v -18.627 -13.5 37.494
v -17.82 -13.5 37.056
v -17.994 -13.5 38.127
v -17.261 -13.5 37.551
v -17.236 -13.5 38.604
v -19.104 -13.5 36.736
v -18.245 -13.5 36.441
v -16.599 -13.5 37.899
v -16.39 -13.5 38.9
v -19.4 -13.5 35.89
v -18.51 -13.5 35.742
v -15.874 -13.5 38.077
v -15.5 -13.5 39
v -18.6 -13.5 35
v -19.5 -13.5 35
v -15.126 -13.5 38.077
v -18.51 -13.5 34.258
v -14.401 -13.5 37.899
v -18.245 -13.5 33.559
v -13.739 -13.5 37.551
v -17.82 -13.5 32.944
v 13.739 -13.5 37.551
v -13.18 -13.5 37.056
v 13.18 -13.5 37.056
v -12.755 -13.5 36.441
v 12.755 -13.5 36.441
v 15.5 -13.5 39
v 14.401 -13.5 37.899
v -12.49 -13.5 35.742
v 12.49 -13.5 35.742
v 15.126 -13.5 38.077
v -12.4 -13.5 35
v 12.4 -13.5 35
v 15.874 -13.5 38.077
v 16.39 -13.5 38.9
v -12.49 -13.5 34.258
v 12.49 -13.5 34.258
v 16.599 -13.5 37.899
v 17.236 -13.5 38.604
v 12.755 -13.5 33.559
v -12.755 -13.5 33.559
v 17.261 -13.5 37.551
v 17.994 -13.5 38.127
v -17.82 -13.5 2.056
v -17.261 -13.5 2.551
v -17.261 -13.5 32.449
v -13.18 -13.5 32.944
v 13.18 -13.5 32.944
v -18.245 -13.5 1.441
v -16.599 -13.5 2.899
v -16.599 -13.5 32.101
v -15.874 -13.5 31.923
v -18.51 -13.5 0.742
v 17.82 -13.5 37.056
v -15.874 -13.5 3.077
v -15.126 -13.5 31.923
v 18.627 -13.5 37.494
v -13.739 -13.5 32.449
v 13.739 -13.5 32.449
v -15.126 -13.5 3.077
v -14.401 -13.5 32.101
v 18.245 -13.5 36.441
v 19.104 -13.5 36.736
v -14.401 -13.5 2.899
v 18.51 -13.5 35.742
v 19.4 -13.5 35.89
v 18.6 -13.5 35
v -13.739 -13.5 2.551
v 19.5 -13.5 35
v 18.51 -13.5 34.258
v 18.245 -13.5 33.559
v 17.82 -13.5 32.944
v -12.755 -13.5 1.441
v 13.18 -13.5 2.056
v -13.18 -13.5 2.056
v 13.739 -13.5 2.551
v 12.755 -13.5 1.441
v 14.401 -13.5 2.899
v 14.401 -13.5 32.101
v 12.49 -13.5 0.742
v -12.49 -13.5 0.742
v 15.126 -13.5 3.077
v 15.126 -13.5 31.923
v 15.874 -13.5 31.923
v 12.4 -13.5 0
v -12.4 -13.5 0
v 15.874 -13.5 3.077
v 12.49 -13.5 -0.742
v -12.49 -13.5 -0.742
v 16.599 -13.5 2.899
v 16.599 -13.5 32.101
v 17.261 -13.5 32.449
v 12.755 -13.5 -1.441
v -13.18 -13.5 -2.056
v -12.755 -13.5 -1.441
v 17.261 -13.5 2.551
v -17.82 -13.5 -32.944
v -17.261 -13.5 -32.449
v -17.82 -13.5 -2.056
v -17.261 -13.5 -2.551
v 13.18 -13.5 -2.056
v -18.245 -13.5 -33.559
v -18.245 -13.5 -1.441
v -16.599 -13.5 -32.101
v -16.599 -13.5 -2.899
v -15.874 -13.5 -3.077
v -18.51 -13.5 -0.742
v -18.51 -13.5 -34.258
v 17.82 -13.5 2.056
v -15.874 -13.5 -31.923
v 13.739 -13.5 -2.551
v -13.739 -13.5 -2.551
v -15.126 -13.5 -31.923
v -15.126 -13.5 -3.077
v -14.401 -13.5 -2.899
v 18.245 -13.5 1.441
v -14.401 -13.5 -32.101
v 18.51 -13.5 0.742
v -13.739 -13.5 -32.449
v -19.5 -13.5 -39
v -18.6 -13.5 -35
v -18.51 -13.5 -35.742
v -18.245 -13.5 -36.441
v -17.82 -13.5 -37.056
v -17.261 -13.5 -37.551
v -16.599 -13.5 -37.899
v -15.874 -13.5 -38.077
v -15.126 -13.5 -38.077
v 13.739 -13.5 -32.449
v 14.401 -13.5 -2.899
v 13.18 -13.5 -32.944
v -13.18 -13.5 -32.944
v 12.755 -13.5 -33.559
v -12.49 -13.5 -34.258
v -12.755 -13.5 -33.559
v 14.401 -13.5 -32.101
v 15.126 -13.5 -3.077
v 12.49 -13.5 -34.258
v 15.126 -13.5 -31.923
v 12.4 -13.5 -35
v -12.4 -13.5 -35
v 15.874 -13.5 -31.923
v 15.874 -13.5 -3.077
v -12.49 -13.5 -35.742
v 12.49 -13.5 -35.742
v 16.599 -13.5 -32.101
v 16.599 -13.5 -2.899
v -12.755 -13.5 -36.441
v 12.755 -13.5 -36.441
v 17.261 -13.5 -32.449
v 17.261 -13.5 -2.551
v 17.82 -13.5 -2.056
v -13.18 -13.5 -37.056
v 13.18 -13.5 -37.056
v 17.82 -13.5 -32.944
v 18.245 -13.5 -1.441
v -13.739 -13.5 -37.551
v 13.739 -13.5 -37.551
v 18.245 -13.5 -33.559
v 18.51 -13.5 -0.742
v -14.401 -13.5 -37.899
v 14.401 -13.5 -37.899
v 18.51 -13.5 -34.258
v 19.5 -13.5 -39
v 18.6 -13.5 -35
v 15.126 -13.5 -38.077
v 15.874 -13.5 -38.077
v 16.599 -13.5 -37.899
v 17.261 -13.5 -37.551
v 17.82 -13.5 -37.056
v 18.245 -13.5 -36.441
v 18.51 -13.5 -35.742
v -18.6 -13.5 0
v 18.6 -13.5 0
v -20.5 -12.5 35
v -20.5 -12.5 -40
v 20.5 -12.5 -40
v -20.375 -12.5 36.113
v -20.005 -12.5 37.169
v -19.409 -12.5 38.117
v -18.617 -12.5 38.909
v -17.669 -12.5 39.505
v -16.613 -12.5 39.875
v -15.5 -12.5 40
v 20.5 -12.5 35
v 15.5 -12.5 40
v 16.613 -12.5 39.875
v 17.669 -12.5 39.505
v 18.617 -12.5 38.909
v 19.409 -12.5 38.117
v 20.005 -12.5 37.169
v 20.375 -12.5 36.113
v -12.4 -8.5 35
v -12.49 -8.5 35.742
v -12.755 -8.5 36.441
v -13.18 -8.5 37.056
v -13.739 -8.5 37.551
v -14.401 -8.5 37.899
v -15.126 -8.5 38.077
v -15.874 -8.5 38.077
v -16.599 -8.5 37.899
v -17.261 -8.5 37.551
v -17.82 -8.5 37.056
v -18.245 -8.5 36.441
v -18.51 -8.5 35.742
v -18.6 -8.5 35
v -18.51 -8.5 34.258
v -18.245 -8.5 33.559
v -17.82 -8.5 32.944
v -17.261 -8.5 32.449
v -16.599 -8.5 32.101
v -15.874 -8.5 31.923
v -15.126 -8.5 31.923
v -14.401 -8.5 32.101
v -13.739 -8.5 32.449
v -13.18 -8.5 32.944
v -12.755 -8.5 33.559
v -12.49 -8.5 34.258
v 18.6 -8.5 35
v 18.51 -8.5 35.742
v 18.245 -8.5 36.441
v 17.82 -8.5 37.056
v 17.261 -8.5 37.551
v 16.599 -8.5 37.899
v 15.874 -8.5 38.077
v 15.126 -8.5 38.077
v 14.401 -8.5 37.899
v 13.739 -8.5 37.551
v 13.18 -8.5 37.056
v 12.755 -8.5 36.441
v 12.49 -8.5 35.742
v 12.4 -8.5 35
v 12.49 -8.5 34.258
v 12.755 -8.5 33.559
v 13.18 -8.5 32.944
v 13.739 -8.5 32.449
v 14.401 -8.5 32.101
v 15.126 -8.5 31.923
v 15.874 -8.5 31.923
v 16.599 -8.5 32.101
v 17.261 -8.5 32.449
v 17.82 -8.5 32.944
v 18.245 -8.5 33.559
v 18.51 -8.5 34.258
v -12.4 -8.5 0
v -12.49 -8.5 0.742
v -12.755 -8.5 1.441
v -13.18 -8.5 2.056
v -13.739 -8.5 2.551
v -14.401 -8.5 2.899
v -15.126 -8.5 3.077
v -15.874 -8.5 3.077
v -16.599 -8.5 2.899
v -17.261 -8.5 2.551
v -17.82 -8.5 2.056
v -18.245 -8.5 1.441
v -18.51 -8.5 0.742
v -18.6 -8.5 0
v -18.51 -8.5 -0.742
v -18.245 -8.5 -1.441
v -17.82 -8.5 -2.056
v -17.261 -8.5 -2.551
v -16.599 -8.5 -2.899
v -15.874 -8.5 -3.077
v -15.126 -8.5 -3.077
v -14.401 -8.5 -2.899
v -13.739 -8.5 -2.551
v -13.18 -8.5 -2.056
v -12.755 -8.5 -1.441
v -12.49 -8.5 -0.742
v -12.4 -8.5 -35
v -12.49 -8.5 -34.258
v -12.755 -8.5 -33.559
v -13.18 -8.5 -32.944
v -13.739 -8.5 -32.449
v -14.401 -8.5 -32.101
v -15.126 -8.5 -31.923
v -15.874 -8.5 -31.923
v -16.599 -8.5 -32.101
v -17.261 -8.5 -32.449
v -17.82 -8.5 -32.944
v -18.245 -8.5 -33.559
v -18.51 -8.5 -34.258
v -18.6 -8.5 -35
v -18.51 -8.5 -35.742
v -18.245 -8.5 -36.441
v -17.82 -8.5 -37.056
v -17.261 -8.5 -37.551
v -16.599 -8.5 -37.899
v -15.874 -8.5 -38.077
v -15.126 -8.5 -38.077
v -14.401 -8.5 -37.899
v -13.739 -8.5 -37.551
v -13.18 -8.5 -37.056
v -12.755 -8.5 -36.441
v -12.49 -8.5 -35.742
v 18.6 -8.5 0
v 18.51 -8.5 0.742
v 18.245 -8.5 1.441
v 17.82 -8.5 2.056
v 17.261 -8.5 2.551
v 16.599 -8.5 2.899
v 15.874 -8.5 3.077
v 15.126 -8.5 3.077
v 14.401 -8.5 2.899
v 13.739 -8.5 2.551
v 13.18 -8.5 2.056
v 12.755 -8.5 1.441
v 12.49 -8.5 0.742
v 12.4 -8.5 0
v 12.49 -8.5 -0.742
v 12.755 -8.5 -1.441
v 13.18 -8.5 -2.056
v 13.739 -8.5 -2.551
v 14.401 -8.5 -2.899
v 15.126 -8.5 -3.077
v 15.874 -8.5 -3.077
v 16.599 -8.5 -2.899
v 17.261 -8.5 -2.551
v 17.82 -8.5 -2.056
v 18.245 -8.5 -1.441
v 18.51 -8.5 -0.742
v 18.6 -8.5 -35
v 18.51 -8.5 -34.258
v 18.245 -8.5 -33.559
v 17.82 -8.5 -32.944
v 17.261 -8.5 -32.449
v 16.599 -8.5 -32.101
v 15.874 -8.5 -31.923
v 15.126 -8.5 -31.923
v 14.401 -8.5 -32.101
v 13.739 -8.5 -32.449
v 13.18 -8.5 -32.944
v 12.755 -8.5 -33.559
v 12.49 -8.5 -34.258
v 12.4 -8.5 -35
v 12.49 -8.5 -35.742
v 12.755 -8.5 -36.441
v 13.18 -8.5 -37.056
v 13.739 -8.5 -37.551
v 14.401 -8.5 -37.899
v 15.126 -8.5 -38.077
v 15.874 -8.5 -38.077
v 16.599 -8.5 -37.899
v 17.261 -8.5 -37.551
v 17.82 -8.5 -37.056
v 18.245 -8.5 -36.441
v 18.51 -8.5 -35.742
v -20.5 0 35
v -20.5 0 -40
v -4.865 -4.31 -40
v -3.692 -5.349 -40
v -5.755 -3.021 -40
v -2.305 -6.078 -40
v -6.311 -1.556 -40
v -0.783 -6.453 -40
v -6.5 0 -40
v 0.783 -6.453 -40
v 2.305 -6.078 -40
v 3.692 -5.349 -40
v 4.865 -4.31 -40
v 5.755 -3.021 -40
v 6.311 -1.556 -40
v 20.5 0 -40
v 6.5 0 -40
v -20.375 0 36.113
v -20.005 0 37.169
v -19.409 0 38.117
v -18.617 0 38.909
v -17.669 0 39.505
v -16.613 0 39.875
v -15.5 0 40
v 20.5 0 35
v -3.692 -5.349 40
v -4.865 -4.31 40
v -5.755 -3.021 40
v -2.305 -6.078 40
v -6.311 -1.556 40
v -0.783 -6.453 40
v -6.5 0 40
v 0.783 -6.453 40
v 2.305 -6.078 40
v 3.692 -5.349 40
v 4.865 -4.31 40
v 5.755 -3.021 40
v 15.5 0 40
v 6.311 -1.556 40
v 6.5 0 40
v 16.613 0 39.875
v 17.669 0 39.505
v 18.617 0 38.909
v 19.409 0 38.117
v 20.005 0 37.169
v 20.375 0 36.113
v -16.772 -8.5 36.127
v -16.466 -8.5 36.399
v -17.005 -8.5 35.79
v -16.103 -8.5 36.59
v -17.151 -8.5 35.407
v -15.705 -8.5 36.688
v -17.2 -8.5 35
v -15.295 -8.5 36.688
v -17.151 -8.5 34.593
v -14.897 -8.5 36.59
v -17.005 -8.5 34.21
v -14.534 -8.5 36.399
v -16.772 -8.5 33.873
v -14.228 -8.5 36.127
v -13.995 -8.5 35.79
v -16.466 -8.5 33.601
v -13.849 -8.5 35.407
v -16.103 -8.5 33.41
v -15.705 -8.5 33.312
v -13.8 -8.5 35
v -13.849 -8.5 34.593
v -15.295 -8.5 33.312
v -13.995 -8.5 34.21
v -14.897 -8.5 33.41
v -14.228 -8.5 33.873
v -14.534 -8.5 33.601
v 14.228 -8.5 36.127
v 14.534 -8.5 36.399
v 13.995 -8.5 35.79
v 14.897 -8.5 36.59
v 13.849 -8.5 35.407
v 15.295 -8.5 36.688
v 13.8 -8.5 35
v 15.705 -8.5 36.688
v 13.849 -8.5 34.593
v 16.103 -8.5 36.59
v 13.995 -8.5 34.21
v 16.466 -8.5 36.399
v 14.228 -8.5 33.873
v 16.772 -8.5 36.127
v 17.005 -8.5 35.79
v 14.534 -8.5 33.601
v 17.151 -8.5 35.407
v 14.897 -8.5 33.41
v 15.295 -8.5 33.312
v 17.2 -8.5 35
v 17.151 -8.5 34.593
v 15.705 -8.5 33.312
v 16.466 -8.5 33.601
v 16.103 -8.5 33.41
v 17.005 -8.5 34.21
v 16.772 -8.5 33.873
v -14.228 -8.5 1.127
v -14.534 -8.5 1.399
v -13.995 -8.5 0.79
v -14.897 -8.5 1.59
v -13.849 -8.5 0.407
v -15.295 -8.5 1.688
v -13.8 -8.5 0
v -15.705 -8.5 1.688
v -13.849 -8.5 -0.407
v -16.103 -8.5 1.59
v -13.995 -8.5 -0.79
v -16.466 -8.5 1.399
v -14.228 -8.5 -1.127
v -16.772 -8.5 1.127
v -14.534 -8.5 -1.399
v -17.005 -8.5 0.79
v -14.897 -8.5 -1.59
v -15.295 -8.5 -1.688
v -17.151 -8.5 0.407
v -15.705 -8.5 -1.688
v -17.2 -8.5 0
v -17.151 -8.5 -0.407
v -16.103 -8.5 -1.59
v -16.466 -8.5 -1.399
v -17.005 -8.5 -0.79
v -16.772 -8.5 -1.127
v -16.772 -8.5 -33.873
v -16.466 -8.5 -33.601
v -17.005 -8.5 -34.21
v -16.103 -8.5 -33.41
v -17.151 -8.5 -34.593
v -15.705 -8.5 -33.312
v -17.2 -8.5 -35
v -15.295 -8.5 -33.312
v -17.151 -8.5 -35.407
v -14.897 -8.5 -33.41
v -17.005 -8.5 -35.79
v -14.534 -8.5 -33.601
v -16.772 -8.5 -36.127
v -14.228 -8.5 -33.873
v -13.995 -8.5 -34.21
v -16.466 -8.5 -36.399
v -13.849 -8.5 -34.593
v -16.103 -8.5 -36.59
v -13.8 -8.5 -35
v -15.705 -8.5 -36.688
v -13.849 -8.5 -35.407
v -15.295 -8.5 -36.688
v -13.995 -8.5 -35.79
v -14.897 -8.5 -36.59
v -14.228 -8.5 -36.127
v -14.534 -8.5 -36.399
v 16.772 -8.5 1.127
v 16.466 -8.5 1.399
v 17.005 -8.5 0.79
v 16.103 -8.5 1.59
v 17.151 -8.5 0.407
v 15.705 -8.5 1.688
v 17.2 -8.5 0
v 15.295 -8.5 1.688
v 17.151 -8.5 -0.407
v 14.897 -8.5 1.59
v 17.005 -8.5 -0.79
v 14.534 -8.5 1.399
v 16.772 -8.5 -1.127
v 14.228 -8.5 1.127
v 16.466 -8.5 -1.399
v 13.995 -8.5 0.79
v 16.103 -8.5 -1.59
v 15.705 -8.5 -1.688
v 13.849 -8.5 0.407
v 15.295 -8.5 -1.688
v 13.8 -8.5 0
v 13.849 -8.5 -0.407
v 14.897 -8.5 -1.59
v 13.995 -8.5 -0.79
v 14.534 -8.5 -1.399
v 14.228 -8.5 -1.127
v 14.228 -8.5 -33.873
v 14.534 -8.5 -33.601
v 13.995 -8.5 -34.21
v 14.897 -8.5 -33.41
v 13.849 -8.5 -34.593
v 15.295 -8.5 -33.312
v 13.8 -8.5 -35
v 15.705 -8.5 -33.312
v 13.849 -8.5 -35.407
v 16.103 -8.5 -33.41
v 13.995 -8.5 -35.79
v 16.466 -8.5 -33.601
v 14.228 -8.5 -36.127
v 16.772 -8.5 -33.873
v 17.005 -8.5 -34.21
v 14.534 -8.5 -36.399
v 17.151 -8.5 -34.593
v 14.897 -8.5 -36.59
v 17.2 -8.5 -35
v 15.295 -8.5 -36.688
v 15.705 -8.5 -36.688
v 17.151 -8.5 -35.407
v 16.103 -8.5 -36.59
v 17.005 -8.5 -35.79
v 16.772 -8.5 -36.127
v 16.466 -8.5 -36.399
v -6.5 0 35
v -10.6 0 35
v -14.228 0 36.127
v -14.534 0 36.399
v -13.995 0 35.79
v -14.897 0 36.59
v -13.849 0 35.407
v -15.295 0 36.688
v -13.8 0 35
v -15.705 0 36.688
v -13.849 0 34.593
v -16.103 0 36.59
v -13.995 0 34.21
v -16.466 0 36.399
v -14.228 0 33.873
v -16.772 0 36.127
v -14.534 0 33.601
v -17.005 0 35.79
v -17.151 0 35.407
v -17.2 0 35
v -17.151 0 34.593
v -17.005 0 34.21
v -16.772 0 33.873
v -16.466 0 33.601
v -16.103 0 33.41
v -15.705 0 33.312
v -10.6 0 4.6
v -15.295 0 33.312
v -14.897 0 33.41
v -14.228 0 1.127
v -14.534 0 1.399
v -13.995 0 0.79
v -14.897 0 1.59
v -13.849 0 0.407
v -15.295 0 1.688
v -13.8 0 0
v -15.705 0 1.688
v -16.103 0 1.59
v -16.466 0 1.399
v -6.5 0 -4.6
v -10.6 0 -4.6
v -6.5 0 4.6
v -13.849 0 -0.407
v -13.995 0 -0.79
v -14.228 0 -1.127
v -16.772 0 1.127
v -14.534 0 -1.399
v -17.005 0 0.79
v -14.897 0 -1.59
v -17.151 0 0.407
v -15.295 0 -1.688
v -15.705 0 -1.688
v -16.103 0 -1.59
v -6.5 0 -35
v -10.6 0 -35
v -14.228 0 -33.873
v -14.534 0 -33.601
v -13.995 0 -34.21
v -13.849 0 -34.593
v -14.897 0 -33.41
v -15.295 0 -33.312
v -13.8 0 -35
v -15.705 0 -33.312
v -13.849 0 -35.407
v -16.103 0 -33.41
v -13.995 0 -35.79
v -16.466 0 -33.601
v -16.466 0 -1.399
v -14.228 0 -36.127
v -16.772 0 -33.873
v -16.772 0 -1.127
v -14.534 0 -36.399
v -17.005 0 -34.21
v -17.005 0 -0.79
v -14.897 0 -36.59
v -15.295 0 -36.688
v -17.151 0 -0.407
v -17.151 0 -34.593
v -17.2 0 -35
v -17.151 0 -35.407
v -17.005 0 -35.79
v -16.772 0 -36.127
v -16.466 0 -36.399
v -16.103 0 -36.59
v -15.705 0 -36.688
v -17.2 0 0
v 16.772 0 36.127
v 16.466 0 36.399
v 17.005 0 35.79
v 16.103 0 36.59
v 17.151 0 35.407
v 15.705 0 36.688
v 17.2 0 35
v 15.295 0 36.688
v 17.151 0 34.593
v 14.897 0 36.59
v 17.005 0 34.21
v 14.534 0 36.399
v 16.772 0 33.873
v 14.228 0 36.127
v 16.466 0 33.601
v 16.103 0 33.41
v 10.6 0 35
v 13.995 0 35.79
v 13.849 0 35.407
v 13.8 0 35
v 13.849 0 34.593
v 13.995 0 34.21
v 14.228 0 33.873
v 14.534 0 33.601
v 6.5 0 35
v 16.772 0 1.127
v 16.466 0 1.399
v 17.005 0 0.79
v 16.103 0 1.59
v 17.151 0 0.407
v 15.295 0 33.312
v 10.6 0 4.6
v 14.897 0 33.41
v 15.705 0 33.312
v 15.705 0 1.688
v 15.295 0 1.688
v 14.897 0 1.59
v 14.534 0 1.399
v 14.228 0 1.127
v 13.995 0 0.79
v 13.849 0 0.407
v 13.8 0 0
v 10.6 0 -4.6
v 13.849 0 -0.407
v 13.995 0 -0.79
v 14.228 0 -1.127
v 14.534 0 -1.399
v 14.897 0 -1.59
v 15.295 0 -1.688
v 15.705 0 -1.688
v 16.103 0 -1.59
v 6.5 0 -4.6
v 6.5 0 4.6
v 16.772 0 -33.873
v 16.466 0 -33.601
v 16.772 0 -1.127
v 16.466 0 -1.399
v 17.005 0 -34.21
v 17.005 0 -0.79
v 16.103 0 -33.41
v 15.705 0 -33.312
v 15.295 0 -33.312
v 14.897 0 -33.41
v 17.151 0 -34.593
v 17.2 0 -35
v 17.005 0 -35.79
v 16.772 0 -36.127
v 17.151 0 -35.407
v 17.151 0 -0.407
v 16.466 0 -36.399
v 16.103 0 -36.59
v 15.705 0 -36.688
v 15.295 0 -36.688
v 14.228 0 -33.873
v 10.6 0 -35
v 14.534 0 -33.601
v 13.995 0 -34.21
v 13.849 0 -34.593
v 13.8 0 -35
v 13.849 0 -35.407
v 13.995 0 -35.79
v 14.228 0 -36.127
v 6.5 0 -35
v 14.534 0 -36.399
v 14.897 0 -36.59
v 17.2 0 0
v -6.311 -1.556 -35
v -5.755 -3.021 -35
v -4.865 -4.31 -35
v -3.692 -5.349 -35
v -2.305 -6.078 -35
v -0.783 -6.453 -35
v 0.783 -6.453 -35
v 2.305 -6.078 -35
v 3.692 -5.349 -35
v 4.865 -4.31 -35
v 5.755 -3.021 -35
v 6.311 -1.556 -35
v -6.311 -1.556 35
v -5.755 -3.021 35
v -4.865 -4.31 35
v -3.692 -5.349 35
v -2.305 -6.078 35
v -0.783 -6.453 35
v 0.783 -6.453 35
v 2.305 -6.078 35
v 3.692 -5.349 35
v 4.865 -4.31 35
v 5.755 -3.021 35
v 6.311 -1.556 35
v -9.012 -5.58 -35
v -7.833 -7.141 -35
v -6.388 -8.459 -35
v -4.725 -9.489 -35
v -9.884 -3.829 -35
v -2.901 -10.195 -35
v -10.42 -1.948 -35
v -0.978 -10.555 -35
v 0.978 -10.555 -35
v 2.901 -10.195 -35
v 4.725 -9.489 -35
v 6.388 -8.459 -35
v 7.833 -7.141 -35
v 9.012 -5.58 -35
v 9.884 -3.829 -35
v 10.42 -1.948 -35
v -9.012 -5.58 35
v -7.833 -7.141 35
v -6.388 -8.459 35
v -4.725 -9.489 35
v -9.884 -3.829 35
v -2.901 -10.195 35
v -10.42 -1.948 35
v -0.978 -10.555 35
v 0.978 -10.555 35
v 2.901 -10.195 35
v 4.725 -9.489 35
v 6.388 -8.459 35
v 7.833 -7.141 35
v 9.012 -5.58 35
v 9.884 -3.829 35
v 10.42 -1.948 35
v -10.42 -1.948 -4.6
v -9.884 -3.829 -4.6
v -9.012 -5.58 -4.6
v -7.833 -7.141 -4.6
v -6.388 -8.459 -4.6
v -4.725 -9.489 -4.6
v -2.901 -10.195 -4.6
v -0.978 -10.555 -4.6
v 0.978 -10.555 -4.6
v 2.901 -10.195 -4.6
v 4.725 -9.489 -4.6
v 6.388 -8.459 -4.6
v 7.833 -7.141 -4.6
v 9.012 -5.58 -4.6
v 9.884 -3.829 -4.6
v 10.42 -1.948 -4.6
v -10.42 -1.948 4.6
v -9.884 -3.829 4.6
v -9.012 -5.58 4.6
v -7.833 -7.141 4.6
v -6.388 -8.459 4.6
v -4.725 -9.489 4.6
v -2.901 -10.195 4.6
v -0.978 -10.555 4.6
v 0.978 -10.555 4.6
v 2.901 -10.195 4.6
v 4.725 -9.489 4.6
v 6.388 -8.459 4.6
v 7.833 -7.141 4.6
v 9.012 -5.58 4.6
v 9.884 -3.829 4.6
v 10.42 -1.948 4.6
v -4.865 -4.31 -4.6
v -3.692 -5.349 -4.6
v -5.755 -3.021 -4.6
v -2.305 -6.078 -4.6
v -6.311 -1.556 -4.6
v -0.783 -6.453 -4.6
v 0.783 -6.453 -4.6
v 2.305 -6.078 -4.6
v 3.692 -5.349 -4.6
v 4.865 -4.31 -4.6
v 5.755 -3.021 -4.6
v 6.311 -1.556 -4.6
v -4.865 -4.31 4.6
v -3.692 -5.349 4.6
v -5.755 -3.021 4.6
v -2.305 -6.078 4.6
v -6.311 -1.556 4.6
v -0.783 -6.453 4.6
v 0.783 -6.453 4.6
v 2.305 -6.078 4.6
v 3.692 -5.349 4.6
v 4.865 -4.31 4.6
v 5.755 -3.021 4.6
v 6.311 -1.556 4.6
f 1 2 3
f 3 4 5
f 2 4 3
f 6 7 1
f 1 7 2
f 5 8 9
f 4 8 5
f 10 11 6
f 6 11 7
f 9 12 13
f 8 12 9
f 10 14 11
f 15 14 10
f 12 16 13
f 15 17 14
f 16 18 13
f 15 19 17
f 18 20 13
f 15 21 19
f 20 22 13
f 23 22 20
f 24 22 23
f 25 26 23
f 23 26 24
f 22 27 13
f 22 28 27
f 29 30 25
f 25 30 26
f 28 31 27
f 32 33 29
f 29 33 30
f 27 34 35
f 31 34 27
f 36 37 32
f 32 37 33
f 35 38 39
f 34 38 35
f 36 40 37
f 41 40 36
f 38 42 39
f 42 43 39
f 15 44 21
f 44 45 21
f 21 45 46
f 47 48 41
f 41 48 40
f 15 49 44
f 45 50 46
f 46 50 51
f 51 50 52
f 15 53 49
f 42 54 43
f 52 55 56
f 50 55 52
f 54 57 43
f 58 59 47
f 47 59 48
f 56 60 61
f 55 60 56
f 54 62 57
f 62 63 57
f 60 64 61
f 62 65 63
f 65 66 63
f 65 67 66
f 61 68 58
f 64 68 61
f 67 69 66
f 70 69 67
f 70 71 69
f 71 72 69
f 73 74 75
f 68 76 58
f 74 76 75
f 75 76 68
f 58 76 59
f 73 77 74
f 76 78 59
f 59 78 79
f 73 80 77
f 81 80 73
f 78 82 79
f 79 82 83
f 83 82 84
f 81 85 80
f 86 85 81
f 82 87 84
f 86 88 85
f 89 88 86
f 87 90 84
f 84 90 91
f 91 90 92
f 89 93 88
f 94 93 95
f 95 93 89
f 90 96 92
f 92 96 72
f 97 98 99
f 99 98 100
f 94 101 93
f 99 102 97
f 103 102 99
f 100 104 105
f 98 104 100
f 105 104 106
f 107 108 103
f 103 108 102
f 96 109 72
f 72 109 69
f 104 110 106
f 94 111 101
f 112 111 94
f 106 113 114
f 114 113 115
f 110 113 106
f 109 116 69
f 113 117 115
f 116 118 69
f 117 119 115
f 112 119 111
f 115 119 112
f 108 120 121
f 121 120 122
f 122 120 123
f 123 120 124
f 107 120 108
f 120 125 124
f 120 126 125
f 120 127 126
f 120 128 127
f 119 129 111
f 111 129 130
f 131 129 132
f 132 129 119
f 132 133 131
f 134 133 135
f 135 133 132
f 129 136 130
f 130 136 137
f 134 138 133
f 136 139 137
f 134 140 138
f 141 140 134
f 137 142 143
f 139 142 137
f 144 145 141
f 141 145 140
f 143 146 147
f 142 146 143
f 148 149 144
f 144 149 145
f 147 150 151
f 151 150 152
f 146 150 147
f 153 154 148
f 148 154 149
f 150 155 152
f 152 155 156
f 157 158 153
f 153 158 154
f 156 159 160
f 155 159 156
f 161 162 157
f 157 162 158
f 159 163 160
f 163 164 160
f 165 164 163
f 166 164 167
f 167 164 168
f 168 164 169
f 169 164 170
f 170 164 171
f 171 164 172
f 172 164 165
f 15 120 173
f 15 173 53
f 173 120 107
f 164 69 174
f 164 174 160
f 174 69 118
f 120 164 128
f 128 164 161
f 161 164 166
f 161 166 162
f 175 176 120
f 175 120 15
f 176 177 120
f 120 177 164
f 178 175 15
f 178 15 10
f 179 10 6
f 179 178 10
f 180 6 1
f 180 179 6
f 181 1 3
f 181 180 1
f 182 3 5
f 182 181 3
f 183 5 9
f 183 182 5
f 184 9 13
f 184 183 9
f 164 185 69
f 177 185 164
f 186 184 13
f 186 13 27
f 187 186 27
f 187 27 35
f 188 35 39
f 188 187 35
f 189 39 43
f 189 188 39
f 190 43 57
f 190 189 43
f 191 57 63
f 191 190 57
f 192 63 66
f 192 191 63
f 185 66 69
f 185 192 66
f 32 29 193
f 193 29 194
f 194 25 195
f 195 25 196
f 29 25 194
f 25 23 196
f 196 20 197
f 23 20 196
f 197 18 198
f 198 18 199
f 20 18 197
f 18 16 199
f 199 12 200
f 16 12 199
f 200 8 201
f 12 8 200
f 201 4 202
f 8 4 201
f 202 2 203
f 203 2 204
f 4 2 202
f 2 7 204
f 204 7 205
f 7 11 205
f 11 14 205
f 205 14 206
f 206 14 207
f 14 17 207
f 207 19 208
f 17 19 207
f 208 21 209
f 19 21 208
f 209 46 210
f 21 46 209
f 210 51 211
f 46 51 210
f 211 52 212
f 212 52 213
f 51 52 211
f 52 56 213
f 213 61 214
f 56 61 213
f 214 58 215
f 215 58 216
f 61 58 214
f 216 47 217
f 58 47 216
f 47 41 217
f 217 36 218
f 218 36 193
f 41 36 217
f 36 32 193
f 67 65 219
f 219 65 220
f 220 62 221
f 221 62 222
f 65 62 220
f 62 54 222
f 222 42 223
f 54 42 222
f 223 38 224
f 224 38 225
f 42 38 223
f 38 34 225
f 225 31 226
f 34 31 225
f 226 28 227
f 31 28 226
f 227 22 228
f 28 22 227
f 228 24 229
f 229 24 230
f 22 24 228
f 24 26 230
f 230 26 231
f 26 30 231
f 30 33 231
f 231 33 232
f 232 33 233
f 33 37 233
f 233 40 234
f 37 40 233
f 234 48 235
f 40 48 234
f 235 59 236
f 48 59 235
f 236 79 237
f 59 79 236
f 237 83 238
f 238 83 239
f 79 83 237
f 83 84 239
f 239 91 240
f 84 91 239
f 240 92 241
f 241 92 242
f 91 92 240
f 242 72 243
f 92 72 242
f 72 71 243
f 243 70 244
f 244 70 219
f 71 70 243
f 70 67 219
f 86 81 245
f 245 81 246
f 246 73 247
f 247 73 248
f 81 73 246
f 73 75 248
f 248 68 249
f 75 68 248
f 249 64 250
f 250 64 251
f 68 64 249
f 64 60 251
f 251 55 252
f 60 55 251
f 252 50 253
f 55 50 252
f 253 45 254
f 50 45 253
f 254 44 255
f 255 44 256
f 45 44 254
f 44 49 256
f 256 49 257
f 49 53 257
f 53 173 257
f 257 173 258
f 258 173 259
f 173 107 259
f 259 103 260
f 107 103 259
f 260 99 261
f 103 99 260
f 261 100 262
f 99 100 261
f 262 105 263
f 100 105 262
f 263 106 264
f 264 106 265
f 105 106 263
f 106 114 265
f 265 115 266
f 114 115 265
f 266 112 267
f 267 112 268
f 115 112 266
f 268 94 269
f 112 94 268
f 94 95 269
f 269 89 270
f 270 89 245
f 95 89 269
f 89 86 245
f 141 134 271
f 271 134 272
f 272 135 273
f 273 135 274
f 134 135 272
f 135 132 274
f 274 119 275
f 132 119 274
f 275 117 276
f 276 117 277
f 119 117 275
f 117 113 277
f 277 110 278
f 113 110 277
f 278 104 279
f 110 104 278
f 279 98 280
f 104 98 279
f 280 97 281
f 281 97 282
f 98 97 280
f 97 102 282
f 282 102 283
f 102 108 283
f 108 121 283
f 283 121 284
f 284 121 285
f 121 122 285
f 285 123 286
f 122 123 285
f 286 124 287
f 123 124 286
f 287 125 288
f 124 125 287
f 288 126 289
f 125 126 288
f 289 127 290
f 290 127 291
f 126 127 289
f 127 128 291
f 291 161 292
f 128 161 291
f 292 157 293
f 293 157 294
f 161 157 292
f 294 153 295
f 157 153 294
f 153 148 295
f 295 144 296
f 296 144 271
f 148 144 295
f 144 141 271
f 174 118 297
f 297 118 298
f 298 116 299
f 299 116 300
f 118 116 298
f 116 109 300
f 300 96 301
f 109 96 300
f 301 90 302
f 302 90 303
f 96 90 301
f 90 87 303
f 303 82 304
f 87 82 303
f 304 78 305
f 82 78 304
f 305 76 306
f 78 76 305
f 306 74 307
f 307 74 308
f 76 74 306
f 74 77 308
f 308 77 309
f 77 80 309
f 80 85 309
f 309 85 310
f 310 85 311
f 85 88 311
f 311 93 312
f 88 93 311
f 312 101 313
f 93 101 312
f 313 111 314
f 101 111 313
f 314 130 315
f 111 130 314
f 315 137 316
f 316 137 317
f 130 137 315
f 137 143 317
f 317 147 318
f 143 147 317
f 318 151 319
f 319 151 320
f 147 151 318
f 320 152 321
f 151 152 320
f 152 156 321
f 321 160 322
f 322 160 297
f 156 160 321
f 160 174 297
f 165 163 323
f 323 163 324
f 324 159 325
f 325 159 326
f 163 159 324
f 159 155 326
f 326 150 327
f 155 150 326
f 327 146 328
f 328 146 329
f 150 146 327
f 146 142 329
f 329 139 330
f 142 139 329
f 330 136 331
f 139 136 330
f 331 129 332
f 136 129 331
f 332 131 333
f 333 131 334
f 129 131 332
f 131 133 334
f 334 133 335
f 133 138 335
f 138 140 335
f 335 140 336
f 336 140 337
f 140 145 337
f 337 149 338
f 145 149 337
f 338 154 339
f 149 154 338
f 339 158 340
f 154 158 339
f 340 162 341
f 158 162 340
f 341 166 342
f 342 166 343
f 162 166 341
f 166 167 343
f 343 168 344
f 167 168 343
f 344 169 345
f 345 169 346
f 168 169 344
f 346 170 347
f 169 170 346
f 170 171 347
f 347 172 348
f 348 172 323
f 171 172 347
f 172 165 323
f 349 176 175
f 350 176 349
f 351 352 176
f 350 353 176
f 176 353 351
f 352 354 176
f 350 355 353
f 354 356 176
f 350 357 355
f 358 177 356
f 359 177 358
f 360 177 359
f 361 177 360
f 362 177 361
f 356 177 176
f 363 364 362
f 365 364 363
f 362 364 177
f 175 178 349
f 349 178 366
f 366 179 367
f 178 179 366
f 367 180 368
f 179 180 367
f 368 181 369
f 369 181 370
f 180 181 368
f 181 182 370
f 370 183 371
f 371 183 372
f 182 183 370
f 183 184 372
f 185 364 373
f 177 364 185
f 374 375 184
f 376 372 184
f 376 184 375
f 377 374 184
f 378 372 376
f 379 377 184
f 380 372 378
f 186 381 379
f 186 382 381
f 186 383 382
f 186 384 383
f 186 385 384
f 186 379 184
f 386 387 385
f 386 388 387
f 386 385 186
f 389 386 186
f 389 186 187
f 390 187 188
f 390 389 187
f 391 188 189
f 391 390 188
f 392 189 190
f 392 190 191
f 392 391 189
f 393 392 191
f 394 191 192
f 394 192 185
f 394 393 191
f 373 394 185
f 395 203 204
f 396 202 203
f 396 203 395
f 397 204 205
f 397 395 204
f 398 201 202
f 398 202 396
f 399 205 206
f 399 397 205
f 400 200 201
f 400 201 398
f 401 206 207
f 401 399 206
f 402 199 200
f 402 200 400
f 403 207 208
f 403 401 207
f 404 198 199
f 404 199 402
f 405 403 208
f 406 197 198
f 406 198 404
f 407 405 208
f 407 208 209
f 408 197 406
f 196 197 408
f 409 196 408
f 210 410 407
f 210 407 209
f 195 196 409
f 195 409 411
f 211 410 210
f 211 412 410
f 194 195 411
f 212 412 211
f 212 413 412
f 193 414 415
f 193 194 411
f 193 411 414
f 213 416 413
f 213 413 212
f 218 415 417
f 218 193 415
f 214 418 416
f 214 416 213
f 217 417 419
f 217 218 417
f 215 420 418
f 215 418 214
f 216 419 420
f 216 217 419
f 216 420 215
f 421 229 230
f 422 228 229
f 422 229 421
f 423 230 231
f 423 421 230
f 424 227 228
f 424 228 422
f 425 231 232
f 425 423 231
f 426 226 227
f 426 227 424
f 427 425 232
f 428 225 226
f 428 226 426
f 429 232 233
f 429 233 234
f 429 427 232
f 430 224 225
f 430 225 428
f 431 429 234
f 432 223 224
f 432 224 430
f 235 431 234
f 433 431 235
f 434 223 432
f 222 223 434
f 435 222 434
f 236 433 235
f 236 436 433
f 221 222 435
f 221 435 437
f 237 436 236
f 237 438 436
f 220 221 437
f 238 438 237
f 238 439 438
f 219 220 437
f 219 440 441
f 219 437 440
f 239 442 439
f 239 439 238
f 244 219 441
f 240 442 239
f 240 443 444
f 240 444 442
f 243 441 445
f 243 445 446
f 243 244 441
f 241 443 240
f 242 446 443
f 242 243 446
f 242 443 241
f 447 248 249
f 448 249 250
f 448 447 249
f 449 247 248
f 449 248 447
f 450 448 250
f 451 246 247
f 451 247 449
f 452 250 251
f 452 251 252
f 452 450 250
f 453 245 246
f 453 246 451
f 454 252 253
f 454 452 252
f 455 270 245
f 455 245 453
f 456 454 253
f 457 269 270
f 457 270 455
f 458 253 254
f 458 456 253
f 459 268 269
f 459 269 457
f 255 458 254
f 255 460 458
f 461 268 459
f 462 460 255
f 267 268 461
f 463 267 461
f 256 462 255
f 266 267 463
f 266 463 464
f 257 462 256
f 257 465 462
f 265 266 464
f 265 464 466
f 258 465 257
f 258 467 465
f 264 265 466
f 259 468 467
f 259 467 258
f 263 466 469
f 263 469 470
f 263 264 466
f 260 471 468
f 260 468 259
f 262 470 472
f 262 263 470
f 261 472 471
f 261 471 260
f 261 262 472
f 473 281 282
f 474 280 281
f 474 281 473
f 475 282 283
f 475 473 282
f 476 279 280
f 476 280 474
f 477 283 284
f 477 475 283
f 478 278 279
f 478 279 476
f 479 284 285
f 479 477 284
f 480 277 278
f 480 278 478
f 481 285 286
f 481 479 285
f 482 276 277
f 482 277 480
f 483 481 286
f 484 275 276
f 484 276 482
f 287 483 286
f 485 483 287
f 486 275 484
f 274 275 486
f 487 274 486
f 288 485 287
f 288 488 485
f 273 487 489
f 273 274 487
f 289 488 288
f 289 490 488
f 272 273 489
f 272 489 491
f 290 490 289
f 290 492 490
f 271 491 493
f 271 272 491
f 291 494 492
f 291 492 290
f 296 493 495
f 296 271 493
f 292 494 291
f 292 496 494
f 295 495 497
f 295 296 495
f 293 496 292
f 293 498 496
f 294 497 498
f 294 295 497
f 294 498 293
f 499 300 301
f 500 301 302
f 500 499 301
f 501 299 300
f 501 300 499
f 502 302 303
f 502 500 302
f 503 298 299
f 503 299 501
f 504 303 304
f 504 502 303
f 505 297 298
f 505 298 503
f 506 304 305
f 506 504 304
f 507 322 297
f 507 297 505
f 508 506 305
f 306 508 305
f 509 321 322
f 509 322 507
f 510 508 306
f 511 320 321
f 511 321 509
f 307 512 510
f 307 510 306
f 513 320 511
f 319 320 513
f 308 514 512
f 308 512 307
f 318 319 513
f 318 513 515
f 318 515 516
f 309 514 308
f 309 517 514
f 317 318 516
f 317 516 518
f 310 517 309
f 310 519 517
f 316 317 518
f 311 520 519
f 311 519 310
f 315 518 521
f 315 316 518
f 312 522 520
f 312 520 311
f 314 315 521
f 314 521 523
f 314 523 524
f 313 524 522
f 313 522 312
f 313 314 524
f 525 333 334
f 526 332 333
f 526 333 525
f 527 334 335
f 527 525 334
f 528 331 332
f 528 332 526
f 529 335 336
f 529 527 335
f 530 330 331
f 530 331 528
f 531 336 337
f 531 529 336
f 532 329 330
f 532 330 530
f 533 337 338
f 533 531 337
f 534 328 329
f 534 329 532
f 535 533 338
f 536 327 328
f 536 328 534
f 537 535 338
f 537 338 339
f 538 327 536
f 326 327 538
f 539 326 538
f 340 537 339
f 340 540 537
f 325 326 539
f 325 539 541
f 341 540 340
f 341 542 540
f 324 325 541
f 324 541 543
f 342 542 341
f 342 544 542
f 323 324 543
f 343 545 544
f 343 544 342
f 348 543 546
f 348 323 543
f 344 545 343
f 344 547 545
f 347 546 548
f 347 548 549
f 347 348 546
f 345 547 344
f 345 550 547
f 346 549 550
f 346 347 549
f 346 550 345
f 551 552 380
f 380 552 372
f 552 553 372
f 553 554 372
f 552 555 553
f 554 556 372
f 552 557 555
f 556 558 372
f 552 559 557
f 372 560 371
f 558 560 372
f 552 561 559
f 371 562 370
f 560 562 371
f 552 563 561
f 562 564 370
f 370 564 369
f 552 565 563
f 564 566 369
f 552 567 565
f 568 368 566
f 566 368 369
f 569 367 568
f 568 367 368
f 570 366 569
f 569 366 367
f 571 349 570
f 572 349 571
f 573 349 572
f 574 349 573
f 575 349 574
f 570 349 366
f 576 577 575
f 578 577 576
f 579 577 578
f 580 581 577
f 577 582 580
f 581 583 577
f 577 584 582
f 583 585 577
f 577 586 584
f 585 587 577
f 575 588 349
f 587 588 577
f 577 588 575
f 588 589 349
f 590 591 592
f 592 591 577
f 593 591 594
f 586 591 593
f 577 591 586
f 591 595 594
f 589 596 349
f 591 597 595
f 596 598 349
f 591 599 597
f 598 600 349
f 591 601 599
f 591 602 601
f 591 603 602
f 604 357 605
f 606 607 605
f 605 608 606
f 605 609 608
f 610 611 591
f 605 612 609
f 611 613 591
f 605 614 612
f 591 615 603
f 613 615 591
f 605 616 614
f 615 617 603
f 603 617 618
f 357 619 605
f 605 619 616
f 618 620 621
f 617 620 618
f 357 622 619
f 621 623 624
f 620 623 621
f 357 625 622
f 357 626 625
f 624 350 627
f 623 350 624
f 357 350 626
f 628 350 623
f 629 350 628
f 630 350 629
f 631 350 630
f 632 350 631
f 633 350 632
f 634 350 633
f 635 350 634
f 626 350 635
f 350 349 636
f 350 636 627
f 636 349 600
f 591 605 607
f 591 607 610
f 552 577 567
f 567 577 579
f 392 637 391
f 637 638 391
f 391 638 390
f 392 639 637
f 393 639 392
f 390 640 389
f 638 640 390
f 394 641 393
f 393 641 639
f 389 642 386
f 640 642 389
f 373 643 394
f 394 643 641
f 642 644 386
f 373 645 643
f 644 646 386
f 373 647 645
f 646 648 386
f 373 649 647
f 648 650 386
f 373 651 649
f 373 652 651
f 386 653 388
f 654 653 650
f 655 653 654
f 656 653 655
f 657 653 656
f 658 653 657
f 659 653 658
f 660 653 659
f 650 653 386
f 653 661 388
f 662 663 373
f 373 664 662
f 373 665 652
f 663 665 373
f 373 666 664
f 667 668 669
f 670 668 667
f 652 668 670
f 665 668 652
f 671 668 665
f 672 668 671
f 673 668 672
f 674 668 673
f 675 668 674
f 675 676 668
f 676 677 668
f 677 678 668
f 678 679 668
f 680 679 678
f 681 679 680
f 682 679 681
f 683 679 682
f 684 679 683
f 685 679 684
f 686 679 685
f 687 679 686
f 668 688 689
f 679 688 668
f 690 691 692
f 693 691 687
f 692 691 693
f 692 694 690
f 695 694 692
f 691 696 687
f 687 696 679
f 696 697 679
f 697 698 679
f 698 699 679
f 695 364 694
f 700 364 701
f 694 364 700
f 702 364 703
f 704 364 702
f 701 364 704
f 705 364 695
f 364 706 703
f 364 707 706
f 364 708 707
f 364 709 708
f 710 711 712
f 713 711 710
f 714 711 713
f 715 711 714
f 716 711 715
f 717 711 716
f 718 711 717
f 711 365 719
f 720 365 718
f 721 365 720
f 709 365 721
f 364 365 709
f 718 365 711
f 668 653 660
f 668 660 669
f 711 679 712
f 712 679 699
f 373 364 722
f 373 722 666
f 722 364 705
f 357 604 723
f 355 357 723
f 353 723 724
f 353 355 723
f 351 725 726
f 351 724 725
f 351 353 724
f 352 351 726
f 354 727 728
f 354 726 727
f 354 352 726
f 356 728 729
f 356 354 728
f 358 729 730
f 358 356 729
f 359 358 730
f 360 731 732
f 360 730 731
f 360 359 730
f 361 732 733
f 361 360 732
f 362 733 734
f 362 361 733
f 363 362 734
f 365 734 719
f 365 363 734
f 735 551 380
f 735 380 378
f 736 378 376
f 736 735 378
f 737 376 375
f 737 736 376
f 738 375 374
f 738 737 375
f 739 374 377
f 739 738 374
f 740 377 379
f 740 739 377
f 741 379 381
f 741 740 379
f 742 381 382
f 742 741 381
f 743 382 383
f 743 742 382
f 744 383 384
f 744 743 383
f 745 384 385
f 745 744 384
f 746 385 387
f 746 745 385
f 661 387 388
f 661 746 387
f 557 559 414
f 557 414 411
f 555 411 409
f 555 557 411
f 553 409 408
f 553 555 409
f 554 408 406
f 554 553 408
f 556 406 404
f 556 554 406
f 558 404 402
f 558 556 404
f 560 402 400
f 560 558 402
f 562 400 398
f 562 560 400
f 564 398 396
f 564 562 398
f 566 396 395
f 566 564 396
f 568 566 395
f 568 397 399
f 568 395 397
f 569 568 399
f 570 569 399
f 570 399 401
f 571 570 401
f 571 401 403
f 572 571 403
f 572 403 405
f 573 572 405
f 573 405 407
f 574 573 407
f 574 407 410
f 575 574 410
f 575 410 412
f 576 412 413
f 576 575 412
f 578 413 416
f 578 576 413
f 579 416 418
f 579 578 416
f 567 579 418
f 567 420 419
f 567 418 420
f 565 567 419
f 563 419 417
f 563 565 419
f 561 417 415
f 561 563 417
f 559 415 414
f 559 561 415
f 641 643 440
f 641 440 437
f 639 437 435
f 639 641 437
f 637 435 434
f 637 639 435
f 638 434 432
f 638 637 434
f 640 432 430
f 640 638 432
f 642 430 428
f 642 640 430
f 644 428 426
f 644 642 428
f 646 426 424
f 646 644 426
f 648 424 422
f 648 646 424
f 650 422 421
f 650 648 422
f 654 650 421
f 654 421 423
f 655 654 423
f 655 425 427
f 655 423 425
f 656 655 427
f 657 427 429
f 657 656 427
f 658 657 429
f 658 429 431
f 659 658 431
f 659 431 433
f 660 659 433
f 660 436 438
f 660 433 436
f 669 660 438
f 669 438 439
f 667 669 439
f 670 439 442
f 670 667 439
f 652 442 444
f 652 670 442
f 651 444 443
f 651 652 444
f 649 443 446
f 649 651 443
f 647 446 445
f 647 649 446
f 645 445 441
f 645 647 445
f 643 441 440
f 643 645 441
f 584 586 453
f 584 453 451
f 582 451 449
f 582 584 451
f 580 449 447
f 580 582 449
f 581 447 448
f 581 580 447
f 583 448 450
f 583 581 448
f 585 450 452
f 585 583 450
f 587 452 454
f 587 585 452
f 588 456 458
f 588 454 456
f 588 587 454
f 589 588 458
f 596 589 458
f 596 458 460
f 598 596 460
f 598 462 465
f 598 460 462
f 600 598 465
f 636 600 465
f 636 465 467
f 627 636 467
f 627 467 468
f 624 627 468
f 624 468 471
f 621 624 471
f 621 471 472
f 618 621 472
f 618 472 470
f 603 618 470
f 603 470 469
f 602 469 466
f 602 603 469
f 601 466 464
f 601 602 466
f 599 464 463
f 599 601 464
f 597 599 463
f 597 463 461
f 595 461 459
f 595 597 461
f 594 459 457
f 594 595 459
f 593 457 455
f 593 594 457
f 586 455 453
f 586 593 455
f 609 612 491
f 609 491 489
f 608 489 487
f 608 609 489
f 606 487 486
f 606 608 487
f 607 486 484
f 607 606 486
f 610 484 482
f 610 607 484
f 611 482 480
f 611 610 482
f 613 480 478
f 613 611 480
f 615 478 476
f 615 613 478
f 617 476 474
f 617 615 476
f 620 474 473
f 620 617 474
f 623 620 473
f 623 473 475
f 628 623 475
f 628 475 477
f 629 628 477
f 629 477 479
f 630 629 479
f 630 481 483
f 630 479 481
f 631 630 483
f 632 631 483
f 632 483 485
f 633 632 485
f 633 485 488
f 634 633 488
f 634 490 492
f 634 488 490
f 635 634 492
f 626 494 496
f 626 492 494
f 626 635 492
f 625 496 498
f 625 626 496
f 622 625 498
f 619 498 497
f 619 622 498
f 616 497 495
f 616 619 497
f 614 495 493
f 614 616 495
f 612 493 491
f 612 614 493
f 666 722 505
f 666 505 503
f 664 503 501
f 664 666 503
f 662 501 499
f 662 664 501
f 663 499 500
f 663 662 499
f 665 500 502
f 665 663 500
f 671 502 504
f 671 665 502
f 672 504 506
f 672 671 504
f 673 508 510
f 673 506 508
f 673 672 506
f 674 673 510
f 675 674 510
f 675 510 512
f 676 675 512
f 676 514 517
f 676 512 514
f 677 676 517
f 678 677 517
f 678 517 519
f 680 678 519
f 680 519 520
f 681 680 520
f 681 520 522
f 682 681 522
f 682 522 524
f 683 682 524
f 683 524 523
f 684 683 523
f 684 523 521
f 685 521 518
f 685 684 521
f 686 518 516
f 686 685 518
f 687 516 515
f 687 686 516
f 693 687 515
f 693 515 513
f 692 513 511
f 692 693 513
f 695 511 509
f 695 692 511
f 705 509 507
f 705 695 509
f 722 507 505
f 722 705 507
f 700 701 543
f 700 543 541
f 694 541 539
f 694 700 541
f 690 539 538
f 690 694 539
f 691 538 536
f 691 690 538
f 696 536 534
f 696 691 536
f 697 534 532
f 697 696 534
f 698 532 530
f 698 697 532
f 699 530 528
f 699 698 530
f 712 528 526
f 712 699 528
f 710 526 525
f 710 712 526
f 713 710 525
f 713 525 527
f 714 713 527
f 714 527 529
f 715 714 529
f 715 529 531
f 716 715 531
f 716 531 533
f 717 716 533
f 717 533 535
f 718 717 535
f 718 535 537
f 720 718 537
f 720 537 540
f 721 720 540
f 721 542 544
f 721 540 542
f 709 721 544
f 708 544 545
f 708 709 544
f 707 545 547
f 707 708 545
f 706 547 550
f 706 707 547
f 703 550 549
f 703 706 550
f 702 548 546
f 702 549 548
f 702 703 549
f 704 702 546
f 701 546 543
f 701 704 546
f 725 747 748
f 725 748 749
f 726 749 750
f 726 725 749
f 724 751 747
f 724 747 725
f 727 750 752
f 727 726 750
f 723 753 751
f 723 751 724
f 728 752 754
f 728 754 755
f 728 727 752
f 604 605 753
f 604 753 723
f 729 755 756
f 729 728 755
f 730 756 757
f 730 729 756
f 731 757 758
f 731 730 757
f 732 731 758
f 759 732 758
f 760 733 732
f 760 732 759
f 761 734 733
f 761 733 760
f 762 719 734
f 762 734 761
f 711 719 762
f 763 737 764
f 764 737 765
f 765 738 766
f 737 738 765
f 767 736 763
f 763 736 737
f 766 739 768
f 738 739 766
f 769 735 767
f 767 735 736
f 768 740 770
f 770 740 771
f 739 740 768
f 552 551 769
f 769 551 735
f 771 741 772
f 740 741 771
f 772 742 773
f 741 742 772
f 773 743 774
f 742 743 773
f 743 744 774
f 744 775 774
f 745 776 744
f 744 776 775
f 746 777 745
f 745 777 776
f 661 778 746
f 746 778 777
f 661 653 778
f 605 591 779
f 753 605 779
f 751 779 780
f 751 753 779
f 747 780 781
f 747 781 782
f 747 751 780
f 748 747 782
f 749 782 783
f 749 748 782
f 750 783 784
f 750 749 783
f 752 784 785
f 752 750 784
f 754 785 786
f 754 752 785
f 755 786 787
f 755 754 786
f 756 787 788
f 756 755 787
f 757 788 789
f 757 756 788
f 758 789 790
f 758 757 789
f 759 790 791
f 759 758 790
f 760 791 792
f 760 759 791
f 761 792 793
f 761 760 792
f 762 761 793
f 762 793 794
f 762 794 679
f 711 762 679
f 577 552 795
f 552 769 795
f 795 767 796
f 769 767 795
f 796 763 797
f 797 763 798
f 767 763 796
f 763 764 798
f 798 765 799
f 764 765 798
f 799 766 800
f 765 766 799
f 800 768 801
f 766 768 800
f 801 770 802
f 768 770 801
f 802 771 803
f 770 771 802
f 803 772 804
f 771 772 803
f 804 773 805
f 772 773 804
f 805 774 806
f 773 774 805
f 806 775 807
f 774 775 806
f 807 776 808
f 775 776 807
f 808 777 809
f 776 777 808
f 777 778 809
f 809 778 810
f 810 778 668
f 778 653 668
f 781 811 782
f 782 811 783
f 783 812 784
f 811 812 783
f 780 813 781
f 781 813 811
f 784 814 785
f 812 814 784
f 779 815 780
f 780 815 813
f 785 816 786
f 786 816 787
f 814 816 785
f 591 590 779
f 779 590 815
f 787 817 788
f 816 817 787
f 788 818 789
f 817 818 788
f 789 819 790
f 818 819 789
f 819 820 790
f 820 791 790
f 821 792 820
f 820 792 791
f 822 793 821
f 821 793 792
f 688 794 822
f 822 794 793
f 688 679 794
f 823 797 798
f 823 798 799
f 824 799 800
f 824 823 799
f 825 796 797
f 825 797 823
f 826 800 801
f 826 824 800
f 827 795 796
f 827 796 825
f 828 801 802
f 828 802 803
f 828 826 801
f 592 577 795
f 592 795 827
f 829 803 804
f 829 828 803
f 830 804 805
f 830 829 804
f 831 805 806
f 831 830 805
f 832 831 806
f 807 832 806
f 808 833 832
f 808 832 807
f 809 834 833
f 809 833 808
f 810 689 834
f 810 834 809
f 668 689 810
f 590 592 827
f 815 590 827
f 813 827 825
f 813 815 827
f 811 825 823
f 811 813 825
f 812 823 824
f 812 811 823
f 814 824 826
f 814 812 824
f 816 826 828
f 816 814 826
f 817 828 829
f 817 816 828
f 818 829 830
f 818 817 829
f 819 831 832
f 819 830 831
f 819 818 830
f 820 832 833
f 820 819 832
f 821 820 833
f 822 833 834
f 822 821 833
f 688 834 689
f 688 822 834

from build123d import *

# Parameters (mm, degrees)
PAD_DEPTH       = 40
SKETCH001_R     = 1.7
POCKET_DEPTH    = 13.501
SKETCH002_R     = 10.6
POCKET001_DEPTH = 30.4
SKETCH003_R     = 10.6
POCKET002_DEPTH = 30.4
FILLET_R        = 5
CHAMFER_SIZE    = 1
SKETCH004_R     = 3.1
POCKET003_DEPTH = 5


with BuildPart() as part:
    # Sketch → Pad (new body, symmetric)
    with BuildSketch(Plane.XY):
        with BuildLine():
            Line((-20.5, -13.5), (20.5, -13.5))
            Line((20.5, -13.5), (20.5, 0))
            Line((20.5, 0), (6.5, 0))
            ThreePointArc((-6.5, 0), (0, -6.5), (6.5, 0))
            Line((-6.5, 0), (-20.5, 0))
            Line((-20.5, 0), (-20.5, -13.5))
        make_face()
    extrude(amount=PAD_DEPTH, both=True)

    # Sketch001 → Pocket (cut, through all)
    with BuildSketch(Plane.XZ):
        with Locations((-15.5, 35)):
            Circle(SKETCH001_R)
        with Locations((-15.5, 0)):
            Circle(SKETCH001_R)
        with Locations((-15.5, -35)):
            Circle(SKETCH001_R)
        with Locations((15.5, -35)):
            Circle(SKETCH001_R)
        with Locations((15.5, 0)):
            Circle(SKETCH001_R)
        with Locations((15.5, 35)):
            Circle(SKETCH001_R)
    extrude(amount=POCKET_DEPTH, mode=Mode.SUBTRACT)

    # Sketch002 (on DatumPlane) → Pocket001 (cut)
    with BuildSketch(Plane.XY.offset(35)):
        Circle(SKETCH002_R)
    extrude(amount=-POCKET001_DEPTH, mode=Mode.SUBTRACT)

    # Sketch003 (on DatumPlane) → Pocket002 (cut)
    with BuildSketch(Plane.XY.offset(-35)):
        Circle(SKETCH003_R)
    extrude(amount=POCKET002_DEPTH, mode=Mode.SUBTRACT)

    # Fillet
    fillet_edges = [part.edges().sort_by_distance(p)[0] for p in [
        (-20.5, -6.75, 40),
        (20.5, -6.75, 40),
    ]]
    fillet(fillet_edges, radius=FILLET_R)

    # Chamfer
    chamfer_edges = [part.edges().sort_by_distance(p)[0] for p in [
        (-20.5, -13.5, -2.5),
        (0, -13.5, -40),
    ]]
    chamfer(chamfer_edges, length=CHAMFER_SIZE)

    # Sketch004 (on Face1 of Chamfer) → Pocket003 (cut)
    with BuildSketch(Plane.XZ.offset(13.5)):
        with Locations((-15.5, 35)):
            Circle(SKETCH004_R)
        with Locations((15.5, 35)):
            Circle(SKETCH004_R)
        with Locations((-15.5, -35)):
            Circle(SKETCH004_R)
        with Locations((-15.5, 0)):
            Circle(SKETCH004_R)
        with Locations((15.5, 0)):
            Circle(SKETCH004_R)
        with Locations((15.5, -35)):
            Circle(SKETCH004_R)
    extrude(amount=-POCKET003_DEPTH, mode=Mode.SUBTRACT)


solid = part.part
